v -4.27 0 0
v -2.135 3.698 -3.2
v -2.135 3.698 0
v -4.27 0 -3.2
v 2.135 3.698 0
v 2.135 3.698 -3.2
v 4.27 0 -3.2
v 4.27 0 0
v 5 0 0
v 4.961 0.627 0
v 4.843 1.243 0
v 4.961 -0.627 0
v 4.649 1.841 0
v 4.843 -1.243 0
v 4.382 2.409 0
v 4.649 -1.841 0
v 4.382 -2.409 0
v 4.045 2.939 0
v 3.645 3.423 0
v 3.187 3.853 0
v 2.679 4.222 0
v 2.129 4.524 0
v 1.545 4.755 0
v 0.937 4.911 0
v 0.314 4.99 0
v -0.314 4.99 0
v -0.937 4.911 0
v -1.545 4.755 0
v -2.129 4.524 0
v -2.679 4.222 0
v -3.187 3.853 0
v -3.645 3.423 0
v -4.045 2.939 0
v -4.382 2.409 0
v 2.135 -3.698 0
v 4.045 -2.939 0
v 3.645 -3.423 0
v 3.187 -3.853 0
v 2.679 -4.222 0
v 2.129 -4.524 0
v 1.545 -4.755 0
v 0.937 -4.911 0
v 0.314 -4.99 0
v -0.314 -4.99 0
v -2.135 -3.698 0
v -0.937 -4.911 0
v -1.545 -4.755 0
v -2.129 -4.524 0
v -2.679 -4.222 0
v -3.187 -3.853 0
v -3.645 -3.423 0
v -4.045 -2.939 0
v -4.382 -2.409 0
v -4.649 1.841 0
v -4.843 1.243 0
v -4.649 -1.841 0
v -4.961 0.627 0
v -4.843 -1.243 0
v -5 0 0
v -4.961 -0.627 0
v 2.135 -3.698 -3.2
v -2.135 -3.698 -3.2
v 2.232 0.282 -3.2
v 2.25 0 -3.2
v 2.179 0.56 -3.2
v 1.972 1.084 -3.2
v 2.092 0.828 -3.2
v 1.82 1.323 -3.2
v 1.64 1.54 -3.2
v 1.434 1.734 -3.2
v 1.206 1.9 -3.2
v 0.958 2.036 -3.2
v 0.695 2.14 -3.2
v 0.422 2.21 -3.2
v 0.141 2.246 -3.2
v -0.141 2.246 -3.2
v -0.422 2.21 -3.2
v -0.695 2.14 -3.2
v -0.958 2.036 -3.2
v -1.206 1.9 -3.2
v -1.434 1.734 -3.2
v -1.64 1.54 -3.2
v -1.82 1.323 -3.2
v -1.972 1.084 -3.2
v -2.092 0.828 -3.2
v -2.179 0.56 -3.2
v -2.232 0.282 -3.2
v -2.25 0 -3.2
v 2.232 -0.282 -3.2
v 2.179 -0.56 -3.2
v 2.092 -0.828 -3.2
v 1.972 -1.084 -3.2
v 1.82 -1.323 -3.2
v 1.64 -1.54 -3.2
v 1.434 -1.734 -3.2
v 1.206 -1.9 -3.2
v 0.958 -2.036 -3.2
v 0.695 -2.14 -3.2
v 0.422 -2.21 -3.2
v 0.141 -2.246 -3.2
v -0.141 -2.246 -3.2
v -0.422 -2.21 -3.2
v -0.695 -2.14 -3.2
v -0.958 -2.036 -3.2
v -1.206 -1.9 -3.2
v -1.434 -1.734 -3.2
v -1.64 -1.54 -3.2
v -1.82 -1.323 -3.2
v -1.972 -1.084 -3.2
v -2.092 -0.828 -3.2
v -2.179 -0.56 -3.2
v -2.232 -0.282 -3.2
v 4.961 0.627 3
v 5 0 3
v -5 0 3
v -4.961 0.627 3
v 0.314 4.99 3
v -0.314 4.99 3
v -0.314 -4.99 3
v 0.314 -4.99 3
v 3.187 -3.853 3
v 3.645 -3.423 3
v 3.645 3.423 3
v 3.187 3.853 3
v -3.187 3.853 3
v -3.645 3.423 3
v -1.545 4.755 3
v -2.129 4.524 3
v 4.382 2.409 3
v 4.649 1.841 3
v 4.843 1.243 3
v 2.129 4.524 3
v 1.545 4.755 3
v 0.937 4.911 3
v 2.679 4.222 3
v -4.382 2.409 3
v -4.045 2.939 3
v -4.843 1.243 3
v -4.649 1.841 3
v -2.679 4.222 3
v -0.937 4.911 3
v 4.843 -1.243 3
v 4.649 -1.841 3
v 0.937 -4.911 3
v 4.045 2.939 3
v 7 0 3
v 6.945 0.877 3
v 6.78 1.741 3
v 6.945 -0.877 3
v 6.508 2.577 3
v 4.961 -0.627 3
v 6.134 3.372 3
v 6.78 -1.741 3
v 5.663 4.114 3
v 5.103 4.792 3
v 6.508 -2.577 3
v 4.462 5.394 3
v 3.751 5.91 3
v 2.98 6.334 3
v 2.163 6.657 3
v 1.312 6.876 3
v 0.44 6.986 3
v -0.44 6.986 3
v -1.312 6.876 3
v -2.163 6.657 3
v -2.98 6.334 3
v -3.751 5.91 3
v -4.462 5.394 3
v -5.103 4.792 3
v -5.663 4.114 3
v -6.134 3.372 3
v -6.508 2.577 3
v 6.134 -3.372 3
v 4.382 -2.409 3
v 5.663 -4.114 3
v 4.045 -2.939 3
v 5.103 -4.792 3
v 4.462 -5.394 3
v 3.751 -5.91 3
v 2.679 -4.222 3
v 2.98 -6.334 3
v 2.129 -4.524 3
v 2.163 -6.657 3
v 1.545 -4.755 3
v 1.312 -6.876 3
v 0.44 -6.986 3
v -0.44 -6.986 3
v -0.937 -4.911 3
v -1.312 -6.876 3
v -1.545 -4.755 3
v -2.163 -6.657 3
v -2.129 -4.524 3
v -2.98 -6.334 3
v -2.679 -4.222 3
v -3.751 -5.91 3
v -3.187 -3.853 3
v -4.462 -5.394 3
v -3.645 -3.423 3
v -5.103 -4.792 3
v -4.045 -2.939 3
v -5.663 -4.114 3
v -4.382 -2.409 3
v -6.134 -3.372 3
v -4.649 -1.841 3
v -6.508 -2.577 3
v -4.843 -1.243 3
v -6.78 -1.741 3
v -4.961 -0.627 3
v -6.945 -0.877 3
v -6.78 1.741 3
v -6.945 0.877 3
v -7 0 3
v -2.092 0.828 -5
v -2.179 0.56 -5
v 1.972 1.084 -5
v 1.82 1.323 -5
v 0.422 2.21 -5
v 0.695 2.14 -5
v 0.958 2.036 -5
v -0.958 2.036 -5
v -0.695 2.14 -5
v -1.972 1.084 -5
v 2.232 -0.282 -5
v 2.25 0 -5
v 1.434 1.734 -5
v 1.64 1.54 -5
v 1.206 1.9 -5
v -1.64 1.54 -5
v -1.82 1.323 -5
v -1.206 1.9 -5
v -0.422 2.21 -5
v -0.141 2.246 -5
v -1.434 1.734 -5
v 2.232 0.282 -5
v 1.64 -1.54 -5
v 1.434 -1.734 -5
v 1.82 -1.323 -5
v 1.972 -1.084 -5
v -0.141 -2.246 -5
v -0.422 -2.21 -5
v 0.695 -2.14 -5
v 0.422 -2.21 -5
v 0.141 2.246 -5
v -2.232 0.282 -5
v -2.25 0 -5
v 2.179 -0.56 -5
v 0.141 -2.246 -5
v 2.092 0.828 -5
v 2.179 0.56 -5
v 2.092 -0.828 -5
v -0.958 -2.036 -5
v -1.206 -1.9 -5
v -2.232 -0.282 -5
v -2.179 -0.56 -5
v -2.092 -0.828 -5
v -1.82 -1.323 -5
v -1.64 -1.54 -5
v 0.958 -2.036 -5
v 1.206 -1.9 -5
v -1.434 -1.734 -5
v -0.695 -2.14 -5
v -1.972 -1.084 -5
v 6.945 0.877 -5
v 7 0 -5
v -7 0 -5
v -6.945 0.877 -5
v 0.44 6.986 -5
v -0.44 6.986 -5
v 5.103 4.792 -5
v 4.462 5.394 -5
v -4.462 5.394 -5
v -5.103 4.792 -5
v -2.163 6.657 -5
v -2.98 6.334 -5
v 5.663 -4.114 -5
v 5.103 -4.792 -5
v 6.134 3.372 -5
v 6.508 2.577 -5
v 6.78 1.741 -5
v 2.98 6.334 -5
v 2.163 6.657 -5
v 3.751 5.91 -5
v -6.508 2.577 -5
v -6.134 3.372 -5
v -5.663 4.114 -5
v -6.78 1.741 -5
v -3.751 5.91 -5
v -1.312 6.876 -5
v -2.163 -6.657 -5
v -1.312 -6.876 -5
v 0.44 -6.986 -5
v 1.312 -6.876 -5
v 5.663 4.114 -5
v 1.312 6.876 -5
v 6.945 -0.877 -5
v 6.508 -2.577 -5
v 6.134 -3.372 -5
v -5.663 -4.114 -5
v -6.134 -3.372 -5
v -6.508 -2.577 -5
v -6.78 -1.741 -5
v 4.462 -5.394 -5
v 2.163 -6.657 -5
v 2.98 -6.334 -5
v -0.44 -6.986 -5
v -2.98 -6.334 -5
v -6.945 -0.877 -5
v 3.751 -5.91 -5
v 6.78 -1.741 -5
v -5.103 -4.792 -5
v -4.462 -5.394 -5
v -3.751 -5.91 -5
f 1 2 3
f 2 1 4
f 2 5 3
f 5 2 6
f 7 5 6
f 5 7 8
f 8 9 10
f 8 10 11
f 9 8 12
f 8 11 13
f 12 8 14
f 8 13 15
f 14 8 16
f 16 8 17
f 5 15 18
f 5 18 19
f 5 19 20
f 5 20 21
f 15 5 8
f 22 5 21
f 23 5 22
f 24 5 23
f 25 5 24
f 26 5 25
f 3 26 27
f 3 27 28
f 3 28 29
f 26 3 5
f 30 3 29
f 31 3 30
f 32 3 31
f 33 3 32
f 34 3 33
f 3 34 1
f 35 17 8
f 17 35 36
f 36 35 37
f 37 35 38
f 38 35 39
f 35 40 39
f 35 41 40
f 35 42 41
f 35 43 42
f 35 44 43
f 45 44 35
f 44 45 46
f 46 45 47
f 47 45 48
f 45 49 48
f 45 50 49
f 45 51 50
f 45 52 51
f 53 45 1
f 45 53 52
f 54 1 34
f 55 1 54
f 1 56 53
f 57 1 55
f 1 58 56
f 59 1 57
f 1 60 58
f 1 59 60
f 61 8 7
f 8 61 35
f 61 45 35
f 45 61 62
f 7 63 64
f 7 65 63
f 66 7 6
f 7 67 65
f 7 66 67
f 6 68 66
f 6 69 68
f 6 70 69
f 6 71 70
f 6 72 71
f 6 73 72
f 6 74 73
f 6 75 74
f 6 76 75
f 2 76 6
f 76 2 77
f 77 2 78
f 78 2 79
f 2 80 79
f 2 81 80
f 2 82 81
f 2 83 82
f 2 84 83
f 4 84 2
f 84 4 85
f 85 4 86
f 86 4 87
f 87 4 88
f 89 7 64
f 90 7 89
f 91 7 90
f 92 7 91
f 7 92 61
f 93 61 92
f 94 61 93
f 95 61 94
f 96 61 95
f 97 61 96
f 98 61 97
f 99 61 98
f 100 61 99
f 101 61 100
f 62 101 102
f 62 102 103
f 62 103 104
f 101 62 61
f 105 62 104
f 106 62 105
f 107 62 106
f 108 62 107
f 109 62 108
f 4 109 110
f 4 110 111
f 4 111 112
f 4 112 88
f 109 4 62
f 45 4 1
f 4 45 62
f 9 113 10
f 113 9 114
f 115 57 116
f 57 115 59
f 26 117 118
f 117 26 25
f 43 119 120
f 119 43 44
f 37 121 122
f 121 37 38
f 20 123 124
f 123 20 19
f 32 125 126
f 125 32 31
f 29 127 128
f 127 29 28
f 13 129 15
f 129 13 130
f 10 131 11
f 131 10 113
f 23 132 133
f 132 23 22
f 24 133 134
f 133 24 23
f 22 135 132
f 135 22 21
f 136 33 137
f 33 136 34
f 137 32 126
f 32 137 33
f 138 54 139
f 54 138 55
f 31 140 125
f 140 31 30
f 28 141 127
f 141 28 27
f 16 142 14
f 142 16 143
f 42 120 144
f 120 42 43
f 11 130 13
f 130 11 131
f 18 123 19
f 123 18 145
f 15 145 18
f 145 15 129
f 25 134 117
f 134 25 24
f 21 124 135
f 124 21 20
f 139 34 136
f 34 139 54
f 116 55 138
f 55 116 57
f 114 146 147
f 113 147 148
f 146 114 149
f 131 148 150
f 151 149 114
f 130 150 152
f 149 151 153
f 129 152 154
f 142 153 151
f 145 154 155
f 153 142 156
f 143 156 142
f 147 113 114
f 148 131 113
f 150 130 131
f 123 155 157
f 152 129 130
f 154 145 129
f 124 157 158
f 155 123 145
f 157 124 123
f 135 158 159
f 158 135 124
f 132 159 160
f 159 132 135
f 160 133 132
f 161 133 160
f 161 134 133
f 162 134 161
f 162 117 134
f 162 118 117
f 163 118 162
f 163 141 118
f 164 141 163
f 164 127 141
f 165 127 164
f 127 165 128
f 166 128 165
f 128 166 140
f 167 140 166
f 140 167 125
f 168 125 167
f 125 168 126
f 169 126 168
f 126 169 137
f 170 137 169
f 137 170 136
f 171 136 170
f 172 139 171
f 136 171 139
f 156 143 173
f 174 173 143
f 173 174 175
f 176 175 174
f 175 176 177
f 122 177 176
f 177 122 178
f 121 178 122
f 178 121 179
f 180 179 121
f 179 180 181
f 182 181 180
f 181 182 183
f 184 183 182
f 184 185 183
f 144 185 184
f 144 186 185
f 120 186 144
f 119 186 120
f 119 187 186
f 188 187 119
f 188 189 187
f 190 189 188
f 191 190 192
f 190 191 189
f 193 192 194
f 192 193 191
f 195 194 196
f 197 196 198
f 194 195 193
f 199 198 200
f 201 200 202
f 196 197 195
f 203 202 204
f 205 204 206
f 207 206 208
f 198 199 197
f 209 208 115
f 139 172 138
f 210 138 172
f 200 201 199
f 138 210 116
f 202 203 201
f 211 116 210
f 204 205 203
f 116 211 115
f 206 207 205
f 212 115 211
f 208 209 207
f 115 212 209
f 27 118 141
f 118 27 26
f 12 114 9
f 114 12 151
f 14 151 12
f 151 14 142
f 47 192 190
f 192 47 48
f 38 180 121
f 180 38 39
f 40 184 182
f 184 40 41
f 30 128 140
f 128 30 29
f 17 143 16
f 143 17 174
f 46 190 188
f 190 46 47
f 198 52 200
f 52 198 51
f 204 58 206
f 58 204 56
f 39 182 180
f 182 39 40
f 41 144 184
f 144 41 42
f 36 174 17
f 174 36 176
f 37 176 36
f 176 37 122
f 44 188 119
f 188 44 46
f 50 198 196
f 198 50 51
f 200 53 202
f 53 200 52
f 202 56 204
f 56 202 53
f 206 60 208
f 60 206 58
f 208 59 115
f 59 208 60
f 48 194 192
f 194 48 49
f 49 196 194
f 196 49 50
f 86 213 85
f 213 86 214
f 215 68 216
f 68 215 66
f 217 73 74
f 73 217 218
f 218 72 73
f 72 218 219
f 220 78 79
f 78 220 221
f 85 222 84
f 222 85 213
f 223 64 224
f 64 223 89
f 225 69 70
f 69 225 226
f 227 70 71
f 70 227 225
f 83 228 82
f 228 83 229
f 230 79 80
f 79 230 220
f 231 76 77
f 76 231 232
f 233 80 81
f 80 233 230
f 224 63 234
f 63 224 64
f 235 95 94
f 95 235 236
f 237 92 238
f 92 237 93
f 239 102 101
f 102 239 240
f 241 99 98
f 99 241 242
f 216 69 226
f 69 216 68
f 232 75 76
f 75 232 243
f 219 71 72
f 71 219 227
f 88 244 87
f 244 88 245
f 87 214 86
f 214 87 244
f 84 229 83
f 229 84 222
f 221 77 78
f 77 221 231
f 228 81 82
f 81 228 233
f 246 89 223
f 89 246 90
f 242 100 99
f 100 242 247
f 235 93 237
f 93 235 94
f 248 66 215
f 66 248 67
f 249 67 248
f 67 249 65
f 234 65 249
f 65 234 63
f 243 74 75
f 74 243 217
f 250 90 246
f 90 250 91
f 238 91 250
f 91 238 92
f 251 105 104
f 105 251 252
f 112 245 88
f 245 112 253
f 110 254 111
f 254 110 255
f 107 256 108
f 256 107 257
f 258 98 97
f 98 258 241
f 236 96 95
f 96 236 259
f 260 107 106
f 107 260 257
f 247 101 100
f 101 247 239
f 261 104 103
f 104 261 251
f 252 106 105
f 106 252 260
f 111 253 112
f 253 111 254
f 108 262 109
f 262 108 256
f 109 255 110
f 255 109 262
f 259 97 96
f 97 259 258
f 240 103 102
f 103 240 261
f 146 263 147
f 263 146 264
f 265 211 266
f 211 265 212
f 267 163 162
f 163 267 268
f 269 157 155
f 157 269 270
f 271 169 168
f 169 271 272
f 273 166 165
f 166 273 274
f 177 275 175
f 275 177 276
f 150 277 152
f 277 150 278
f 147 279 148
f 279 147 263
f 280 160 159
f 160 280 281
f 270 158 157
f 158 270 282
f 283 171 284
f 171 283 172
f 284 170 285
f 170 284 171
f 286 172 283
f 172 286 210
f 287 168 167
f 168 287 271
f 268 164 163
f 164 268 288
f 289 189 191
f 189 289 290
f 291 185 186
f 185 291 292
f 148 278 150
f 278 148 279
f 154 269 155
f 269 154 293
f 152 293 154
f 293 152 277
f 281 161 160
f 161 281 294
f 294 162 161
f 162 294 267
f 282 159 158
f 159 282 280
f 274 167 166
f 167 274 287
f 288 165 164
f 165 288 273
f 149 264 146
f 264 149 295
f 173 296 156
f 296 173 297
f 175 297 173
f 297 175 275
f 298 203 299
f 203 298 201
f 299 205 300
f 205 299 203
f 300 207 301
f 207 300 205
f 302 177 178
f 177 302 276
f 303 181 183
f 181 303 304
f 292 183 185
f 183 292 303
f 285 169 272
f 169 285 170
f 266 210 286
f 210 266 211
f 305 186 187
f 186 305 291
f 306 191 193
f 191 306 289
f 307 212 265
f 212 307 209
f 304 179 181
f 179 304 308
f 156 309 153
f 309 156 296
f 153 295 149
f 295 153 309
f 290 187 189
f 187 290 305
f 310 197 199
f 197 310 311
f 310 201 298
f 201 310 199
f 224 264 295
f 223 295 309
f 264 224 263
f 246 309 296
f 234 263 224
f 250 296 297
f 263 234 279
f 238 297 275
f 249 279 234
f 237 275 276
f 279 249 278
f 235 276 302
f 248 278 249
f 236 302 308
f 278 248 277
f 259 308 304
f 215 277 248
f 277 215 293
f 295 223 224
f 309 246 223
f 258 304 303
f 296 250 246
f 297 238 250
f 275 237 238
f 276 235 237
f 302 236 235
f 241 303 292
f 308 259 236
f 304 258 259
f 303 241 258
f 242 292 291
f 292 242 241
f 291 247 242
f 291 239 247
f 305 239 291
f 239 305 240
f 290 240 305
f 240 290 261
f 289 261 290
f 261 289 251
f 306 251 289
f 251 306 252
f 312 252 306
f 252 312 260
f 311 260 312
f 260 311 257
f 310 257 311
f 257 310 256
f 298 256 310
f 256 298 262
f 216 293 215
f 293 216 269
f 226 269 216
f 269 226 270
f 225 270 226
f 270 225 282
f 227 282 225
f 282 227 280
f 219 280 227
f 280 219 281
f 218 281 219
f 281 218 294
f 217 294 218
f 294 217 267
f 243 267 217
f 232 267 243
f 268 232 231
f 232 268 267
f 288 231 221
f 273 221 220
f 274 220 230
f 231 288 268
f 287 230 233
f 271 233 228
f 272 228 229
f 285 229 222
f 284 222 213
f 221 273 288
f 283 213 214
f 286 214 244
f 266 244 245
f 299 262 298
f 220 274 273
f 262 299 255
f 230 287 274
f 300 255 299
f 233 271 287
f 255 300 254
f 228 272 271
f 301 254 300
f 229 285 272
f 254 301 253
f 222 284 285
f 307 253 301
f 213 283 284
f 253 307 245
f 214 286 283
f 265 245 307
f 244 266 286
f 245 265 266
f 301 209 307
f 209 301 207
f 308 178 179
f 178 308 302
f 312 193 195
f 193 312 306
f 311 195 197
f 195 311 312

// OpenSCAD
$fn = 50;

difference() {
	union() {
		translate(v = [0, 0, -5.0]) {
			cylinder(h = 8.0, r = 7.0);
		}
	}
	union() {
		translate(v = [0, 0, 0]) {
			rotate(a = [0, 0, 0]) {
				difference() {
					union() {
						translate(v = [0, 0, -3.2]) {
							linear_extrude(height = 3.2) {
								polygon(points = [[4.2698, 0.0], [2.1349000000000005, 3.697755269078796], [-2.134899999999999, 3.6977552690787965], [-4.2698, 5.228996902999369e-16], [-2.134900000000002, -3.6977552690787956], [2.1348999999999974, -3.697755269078798]]);
							}
						}
					}
					union();
				}
			}
		}
		#cylinder(h = 3, r = 5.0);
		#translate(v = [0, 0, -100.0]) {
			cylinder(h = 200, r = 2.25);
		}
	}
}
